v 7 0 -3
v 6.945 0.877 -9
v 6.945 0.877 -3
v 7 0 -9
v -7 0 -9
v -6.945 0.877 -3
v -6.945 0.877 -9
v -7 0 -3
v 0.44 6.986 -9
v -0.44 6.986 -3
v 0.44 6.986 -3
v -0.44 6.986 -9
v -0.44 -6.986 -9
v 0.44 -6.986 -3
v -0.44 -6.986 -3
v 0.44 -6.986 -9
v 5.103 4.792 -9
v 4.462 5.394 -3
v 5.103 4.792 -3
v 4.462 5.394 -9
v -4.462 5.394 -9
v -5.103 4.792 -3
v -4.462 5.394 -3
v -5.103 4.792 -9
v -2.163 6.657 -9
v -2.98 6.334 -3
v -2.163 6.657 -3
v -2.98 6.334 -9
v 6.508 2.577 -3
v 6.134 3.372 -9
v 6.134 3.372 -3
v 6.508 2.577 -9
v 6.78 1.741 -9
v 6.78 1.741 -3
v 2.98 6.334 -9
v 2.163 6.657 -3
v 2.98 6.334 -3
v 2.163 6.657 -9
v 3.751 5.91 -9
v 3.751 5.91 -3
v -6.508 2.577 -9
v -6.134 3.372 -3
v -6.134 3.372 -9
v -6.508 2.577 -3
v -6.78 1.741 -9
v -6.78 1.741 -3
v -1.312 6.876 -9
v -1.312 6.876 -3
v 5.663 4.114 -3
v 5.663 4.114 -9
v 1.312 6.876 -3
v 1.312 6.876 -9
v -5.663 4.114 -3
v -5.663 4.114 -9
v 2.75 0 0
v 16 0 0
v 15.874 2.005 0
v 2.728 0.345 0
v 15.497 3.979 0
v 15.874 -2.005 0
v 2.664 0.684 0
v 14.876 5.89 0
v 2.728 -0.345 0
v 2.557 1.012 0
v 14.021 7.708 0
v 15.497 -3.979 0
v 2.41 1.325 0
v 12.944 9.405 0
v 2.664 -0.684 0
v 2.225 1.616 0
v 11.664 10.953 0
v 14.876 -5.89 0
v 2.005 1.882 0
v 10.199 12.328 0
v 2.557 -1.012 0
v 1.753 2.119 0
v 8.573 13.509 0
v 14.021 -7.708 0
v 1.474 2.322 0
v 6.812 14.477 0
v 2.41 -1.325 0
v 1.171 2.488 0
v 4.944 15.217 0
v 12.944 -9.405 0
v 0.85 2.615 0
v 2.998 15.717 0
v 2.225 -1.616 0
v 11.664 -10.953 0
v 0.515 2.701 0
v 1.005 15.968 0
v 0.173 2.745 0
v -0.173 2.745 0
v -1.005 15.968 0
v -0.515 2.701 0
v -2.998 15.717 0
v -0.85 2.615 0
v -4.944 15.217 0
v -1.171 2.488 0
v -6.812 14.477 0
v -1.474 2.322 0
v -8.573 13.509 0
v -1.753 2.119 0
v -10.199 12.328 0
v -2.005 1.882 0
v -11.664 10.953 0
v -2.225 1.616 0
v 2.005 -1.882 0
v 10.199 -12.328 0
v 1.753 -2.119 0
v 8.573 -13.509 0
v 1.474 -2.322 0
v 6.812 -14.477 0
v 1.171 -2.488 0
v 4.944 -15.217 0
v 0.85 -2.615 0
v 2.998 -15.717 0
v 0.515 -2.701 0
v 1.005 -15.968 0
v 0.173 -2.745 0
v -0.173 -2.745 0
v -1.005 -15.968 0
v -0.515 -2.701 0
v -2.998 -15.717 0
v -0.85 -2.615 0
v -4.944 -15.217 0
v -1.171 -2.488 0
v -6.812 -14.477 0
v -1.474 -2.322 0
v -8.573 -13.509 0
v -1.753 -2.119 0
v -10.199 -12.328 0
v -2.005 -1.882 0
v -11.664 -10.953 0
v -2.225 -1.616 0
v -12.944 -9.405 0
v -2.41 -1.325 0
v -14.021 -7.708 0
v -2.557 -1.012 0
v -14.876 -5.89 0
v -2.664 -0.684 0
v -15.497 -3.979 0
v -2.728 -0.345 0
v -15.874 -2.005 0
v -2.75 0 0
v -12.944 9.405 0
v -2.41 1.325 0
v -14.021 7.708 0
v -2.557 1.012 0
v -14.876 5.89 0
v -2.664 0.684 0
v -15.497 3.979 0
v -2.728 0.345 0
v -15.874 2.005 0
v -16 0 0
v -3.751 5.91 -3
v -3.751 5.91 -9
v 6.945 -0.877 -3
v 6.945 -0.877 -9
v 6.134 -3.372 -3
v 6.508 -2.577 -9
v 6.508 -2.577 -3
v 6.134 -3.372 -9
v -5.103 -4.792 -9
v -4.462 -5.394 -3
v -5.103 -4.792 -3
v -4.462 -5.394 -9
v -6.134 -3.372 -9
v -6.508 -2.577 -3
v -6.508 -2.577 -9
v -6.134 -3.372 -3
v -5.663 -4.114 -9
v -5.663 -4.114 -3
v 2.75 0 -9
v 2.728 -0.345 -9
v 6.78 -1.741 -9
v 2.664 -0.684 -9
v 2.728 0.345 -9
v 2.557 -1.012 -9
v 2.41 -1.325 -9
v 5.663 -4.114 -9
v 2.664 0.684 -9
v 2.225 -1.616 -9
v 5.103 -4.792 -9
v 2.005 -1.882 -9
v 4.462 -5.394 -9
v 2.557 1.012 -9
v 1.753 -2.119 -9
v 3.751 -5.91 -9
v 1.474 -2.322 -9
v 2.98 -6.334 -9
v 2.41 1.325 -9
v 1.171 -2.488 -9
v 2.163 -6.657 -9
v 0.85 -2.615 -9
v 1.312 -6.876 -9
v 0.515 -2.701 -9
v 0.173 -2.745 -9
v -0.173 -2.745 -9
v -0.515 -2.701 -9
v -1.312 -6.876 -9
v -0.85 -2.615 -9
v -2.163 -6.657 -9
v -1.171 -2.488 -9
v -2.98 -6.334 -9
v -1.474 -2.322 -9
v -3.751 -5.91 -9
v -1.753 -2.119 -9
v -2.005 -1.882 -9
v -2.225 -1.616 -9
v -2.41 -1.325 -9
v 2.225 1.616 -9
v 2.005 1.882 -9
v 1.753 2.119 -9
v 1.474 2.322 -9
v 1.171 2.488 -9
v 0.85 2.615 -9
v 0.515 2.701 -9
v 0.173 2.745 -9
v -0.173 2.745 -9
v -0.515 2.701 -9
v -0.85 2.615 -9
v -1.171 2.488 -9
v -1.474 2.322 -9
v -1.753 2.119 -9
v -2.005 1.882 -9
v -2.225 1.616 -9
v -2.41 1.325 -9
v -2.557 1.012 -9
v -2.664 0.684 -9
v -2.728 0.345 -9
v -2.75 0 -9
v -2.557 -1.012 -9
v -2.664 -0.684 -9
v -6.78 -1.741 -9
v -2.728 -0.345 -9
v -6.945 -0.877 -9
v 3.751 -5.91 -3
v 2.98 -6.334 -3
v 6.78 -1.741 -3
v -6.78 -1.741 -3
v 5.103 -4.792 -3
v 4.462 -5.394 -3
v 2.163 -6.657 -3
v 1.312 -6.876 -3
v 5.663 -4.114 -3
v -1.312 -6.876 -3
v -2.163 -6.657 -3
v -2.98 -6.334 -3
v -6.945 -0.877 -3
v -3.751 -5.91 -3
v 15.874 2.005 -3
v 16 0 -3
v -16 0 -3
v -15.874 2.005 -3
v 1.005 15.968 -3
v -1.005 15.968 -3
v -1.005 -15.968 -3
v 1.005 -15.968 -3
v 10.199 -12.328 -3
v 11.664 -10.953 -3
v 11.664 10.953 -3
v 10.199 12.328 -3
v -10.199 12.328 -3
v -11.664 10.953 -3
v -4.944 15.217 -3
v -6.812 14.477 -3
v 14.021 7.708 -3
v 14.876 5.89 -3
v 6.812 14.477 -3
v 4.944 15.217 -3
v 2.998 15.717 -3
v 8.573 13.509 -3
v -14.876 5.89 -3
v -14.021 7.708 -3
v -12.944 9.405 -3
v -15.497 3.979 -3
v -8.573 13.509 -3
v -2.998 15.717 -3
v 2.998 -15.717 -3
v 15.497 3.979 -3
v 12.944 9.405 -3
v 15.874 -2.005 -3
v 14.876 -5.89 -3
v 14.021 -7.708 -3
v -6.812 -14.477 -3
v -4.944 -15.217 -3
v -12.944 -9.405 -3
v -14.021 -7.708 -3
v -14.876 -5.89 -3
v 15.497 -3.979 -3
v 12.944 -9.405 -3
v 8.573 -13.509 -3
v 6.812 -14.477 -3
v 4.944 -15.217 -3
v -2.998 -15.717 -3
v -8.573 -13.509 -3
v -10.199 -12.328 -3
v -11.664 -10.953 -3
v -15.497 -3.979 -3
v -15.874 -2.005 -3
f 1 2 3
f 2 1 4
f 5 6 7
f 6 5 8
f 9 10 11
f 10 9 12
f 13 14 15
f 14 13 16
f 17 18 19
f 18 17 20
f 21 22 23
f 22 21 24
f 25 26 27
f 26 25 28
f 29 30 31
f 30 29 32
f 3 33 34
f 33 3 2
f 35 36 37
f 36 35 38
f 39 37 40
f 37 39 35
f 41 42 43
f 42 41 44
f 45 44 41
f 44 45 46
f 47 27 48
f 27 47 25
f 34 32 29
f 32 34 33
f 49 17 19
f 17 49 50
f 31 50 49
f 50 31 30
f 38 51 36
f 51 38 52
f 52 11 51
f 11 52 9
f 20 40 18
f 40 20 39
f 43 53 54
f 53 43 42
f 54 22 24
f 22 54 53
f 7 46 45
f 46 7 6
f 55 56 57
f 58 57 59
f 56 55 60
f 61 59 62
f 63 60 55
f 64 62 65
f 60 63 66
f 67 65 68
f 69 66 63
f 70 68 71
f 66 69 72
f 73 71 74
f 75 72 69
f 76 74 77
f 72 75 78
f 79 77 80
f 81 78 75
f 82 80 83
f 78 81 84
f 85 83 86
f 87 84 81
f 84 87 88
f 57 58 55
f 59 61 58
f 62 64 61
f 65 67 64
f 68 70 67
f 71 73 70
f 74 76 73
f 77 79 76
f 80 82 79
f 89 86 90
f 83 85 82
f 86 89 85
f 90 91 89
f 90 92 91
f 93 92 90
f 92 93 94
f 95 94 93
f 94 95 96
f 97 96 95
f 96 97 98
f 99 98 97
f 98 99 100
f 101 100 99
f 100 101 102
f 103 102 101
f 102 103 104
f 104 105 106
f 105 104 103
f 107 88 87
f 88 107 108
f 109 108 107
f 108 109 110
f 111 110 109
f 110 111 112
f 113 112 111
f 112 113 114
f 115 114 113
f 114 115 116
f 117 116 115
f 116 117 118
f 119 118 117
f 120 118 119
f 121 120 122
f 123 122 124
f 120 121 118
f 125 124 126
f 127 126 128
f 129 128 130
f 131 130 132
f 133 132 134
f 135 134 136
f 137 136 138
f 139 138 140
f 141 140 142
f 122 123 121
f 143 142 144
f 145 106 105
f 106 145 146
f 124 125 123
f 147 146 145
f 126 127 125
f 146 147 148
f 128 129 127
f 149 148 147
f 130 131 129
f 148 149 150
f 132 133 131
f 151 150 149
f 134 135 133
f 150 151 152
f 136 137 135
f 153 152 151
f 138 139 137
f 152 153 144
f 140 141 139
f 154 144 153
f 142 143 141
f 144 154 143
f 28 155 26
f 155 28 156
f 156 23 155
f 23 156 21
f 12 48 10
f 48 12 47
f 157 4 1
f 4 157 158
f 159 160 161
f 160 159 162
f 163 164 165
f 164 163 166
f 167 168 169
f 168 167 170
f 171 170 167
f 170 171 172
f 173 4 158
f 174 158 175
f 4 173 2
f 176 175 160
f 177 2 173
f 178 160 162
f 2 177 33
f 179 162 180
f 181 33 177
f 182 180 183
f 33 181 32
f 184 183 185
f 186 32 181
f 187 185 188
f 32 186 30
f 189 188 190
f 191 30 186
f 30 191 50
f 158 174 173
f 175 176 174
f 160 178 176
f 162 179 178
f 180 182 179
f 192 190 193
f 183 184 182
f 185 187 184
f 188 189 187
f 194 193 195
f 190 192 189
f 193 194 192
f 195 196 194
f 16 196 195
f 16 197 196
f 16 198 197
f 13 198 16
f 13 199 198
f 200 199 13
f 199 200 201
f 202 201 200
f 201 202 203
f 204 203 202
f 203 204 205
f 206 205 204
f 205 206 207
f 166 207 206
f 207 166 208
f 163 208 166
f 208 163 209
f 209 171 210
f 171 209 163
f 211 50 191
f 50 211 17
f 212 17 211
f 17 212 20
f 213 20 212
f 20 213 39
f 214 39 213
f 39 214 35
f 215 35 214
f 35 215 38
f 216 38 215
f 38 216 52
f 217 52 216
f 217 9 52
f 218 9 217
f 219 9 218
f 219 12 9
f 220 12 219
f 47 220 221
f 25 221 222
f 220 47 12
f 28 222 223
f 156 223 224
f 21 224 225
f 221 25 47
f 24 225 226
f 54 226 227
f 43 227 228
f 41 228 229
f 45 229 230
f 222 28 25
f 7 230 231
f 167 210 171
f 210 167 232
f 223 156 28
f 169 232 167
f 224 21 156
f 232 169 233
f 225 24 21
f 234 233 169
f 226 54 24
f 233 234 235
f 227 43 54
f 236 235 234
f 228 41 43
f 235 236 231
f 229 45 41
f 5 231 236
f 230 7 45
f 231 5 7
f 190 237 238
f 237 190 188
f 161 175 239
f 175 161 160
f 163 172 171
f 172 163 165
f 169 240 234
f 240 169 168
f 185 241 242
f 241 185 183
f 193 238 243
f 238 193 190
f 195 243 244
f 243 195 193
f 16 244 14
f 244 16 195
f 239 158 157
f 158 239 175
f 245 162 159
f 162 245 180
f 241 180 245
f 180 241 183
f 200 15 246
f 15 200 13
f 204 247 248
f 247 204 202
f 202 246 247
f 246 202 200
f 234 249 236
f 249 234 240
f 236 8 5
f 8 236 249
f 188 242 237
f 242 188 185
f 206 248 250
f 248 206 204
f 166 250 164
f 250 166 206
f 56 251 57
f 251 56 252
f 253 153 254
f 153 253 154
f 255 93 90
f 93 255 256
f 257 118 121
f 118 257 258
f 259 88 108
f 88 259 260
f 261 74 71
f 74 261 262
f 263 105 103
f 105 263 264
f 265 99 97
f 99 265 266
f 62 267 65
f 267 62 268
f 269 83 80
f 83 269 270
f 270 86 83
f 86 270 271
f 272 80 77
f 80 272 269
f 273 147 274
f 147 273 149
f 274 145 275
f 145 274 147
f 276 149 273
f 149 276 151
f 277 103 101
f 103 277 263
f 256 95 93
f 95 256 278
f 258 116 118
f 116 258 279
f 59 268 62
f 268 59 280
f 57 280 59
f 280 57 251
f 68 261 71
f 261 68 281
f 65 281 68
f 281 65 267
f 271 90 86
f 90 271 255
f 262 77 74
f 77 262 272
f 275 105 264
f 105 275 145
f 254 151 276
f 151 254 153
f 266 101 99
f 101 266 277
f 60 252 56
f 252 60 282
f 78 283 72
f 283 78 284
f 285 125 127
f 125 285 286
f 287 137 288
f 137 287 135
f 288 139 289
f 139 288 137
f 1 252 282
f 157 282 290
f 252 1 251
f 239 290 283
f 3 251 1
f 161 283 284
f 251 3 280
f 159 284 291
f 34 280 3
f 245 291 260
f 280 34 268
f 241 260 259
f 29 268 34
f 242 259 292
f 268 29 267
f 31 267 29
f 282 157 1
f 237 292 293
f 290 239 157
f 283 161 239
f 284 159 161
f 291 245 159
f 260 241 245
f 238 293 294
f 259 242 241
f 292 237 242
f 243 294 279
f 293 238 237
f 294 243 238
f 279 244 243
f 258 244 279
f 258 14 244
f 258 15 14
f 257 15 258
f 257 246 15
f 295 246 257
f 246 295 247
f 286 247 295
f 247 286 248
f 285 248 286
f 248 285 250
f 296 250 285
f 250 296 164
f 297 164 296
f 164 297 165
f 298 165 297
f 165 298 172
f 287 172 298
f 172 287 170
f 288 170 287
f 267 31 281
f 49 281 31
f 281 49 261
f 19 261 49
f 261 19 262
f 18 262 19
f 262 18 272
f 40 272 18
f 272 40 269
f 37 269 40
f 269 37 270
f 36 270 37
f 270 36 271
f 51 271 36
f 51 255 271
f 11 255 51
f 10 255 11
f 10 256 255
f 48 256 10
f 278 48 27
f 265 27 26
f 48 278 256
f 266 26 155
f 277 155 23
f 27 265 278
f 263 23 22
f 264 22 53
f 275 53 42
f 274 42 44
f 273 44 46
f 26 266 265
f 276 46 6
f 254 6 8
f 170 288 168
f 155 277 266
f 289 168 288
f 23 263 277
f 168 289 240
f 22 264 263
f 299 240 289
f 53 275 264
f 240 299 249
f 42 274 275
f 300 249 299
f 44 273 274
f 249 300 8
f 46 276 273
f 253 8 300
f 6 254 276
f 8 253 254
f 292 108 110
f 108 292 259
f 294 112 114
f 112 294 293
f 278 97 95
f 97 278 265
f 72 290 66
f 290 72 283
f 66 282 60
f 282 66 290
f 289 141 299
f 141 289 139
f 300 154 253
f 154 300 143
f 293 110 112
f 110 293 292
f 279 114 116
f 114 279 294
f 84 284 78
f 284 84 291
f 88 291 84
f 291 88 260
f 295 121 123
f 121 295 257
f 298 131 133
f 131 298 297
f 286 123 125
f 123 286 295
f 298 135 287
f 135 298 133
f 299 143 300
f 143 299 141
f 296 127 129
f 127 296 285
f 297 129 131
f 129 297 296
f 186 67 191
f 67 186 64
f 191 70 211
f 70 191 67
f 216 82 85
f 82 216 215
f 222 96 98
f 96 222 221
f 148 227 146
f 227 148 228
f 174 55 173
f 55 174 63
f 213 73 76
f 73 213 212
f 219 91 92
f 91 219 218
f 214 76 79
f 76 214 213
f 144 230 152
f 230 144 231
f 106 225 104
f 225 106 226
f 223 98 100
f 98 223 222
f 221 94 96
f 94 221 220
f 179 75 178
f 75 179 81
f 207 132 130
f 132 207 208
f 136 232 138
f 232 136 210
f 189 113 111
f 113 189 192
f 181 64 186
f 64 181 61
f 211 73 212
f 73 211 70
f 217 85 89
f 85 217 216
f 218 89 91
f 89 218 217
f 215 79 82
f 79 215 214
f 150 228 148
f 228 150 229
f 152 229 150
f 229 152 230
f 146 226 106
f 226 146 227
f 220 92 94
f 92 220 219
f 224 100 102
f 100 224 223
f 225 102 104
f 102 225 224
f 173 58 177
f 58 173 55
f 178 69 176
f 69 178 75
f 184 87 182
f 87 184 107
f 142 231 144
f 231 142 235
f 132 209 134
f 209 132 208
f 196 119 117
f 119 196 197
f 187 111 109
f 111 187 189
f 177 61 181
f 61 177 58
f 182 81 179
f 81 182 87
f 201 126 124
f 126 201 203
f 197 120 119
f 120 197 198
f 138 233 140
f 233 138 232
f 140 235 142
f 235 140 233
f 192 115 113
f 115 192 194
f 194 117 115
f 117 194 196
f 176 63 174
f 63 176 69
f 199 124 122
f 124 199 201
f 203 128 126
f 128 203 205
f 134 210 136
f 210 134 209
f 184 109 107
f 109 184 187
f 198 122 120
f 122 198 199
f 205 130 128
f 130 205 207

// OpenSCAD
$fn = 50;


difference() {
	union() {
		translate(v = [0, 0, -9.0000000000]) {
			cylinder(h = 9, r = 7.0000000000);
		}
		translate(v = [0, 0, -3.0000000000]) {
			cylinder(h = 3, r = 16.0000000000);
		}
	}
	union() {
		#translate(v = [0, 0, -9]) {
			cylinder(h = 9, r = 2.7500000000);
		}
	}
}
